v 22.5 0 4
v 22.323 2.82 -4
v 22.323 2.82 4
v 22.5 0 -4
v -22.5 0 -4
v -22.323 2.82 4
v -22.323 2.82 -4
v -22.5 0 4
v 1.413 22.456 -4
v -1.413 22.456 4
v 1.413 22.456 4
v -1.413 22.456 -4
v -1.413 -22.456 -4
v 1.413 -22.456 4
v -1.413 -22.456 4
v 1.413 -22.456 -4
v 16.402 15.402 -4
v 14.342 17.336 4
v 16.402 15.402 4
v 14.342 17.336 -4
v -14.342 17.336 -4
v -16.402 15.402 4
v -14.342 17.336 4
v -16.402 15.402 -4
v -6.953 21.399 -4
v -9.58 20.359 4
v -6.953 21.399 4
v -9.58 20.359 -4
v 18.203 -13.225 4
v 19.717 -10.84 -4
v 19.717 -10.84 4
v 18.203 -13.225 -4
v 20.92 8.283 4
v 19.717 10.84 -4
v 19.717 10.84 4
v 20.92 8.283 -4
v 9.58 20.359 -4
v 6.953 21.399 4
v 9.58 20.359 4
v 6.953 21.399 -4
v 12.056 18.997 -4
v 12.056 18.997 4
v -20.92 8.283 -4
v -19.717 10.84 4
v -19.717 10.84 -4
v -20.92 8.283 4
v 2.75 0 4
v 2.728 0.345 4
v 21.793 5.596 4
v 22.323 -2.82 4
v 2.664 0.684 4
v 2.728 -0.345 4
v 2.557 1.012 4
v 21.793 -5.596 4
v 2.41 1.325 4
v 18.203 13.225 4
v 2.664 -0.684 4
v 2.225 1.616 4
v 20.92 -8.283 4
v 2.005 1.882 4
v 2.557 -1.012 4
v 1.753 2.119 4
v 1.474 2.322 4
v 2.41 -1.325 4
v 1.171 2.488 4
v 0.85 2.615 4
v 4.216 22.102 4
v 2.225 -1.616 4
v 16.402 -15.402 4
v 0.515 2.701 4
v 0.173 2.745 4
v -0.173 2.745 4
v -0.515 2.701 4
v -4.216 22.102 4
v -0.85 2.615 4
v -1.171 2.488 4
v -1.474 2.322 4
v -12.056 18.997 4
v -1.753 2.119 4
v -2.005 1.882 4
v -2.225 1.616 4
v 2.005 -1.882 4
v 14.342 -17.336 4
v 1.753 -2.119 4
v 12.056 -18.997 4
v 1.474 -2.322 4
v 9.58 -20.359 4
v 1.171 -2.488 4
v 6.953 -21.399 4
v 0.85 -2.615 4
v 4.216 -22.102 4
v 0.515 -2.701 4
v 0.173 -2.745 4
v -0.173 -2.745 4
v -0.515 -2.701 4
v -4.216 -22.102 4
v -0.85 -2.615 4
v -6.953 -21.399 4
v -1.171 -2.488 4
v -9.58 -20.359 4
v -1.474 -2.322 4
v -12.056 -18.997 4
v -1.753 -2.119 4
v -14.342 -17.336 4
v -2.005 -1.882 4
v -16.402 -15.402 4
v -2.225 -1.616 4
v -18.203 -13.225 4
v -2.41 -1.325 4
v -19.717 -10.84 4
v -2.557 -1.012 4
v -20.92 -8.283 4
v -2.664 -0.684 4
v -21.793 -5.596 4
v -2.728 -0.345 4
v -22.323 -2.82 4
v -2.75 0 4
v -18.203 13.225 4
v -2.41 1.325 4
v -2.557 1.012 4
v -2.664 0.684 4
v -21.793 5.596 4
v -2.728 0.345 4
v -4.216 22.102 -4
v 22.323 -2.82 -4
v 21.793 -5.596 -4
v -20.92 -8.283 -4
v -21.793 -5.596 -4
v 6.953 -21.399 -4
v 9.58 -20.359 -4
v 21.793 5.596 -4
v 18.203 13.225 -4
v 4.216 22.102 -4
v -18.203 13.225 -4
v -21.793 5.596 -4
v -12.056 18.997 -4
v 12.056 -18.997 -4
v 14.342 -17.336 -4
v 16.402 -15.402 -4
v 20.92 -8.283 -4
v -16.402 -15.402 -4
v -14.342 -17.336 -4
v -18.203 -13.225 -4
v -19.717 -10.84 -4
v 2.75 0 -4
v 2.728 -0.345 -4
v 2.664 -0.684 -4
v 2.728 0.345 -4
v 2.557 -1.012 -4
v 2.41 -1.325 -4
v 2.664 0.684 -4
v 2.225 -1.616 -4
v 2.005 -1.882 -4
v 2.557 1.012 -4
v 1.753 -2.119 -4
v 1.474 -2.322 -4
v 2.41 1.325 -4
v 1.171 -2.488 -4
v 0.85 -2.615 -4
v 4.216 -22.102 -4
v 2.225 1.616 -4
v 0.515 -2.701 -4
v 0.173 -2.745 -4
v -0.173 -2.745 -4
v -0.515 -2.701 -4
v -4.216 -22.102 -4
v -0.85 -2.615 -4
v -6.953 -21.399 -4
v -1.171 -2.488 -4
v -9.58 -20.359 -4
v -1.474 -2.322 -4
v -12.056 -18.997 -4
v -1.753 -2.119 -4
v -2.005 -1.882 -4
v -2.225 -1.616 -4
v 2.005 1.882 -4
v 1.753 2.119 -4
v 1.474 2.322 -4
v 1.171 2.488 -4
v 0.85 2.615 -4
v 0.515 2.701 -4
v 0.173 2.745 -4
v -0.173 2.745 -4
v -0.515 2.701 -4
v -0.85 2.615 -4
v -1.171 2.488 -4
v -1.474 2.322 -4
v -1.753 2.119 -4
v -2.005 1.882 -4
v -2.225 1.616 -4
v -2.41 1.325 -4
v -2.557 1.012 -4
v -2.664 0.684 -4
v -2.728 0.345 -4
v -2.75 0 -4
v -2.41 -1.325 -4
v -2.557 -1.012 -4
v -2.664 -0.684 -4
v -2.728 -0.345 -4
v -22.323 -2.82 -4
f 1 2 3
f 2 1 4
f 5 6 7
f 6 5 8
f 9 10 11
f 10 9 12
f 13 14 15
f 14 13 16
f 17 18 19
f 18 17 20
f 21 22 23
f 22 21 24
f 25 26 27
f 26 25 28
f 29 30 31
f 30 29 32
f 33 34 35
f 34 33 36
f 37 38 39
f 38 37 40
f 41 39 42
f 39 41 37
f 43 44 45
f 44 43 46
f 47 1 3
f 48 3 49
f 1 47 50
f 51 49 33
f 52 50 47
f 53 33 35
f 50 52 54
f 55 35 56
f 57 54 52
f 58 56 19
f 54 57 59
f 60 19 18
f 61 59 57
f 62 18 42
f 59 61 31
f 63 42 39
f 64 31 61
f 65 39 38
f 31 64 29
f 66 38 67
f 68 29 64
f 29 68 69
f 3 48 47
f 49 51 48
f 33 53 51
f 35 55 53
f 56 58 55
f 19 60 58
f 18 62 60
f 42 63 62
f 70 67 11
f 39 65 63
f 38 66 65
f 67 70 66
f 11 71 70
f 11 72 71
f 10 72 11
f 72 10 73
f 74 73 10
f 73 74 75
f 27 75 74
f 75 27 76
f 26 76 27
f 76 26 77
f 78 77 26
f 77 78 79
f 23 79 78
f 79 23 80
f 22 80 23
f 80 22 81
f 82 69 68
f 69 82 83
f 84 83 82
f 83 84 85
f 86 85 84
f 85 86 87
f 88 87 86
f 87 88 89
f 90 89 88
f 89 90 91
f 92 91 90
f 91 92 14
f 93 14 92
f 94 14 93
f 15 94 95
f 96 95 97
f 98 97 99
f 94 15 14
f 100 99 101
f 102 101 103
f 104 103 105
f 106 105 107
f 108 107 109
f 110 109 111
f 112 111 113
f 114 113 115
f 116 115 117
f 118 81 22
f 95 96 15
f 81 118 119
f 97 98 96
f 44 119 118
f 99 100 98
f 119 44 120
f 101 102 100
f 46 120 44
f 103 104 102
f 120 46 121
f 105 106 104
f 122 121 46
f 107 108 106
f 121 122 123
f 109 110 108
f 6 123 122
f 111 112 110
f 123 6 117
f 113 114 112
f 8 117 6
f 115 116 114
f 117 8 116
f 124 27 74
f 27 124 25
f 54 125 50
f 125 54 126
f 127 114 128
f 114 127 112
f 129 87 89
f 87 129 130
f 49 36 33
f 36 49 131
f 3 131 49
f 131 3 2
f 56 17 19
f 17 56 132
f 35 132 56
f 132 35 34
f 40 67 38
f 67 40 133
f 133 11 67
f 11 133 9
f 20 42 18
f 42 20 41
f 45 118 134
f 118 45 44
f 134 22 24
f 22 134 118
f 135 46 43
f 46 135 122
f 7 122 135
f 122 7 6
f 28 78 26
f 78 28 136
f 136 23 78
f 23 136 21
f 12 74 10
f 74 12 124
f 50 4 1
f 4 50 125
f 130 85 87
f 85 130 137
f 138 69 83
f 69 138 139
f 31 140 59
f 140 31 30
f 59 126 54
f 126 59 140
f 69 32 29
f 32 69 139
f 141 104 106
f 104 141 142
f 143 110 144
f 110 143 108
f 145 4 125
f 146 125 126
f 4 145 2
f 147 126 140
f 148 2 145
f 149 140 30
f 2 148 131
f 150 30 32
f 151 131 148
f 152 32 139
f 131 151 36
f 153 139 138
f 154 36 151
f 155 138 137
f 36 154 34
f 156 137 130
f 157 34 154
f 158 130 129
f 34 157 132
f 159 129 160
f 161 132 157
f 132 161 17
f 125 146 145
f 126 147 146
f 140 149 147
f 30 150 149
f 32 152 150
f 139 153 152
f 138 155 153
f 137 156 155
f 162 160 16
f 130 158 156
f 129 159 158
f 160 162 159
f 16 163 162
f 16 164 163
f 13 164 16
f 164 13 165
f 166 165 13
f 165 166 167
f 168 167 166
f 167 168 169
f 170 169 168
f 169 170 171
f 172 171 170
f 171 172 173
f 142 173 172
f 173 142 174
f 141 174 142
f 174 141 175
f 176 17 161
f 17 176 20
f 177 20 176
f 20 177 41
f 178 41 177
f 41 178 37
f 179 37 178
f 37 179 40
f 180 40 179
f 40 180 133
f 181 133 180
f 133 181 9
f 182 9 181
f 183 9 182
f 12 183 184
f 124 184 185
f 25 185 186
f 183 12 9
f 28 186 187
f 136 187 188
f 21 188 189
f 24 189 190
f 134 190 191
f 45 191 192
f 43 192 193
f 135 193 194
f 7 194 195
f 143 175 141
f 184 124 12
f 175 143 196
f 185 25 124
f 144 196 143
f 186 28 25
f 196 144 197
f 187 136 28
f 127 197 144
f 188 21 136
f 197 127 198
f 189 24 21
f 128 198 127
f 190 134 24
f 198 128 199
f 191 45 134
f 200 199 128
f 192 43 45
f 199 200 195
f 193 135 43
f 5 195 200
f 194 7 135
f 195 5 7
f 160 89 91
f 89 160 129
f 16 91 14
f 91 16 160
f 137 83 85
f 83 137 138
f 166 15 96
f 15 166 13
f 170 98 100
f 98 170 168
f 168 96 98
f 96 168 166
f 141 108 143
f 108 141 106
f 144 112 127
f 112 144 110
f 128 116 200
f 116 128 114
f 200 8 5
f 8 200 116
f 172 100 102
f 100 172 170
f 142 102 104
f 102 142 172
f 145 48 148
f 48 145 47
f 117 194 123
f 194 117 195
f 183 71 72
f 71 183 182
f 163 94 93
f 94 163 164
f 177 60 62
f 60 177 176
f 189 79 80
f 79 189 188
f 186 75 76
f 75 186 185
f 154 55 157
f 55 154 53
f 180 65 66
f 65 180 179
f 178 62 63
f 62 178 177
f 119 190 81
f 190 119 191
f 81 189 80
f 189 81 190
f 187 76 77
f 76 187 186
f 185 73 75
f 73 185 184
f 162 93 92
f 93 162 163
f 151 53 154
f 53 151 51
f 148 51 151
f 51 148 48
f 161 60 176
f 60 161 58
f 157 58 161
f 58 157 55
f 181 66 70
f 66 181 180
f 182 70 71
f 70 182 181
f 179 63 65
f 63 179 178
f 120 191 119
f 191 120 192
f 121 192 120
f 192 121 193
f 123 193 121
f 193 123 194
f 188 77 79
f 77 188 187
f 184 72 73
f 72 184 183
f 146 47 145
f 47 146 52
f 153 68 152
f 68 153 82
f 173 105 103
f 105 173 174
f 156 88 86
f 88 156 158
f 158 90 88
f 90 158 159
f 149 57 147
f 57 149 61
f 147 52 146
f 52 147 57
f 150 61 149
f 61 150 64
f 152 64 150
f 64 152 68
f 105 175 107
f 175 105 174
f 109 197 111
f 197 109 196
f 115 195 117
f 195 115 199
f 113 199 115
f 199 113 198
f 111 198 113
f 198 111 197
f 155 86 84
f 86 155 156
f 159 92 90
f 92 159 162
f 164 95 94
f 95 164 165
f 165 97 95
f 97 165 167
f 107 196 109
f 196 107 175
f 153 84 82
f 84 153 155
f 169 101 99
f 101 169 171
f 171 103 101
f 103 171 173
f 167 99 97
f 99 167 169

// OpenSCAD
$fn = 50;


difference() {
	union() {
		translate(v = [0, 0, -4.0000000000]) {
			cylinder(h = 8, r = 22.5000000000);
		}
	}
	union() {
		translate(v = [0, 0, -100.0000000000]) {
			cylinder(h = 200, r = 2.7500000000);
		}
	}
}
